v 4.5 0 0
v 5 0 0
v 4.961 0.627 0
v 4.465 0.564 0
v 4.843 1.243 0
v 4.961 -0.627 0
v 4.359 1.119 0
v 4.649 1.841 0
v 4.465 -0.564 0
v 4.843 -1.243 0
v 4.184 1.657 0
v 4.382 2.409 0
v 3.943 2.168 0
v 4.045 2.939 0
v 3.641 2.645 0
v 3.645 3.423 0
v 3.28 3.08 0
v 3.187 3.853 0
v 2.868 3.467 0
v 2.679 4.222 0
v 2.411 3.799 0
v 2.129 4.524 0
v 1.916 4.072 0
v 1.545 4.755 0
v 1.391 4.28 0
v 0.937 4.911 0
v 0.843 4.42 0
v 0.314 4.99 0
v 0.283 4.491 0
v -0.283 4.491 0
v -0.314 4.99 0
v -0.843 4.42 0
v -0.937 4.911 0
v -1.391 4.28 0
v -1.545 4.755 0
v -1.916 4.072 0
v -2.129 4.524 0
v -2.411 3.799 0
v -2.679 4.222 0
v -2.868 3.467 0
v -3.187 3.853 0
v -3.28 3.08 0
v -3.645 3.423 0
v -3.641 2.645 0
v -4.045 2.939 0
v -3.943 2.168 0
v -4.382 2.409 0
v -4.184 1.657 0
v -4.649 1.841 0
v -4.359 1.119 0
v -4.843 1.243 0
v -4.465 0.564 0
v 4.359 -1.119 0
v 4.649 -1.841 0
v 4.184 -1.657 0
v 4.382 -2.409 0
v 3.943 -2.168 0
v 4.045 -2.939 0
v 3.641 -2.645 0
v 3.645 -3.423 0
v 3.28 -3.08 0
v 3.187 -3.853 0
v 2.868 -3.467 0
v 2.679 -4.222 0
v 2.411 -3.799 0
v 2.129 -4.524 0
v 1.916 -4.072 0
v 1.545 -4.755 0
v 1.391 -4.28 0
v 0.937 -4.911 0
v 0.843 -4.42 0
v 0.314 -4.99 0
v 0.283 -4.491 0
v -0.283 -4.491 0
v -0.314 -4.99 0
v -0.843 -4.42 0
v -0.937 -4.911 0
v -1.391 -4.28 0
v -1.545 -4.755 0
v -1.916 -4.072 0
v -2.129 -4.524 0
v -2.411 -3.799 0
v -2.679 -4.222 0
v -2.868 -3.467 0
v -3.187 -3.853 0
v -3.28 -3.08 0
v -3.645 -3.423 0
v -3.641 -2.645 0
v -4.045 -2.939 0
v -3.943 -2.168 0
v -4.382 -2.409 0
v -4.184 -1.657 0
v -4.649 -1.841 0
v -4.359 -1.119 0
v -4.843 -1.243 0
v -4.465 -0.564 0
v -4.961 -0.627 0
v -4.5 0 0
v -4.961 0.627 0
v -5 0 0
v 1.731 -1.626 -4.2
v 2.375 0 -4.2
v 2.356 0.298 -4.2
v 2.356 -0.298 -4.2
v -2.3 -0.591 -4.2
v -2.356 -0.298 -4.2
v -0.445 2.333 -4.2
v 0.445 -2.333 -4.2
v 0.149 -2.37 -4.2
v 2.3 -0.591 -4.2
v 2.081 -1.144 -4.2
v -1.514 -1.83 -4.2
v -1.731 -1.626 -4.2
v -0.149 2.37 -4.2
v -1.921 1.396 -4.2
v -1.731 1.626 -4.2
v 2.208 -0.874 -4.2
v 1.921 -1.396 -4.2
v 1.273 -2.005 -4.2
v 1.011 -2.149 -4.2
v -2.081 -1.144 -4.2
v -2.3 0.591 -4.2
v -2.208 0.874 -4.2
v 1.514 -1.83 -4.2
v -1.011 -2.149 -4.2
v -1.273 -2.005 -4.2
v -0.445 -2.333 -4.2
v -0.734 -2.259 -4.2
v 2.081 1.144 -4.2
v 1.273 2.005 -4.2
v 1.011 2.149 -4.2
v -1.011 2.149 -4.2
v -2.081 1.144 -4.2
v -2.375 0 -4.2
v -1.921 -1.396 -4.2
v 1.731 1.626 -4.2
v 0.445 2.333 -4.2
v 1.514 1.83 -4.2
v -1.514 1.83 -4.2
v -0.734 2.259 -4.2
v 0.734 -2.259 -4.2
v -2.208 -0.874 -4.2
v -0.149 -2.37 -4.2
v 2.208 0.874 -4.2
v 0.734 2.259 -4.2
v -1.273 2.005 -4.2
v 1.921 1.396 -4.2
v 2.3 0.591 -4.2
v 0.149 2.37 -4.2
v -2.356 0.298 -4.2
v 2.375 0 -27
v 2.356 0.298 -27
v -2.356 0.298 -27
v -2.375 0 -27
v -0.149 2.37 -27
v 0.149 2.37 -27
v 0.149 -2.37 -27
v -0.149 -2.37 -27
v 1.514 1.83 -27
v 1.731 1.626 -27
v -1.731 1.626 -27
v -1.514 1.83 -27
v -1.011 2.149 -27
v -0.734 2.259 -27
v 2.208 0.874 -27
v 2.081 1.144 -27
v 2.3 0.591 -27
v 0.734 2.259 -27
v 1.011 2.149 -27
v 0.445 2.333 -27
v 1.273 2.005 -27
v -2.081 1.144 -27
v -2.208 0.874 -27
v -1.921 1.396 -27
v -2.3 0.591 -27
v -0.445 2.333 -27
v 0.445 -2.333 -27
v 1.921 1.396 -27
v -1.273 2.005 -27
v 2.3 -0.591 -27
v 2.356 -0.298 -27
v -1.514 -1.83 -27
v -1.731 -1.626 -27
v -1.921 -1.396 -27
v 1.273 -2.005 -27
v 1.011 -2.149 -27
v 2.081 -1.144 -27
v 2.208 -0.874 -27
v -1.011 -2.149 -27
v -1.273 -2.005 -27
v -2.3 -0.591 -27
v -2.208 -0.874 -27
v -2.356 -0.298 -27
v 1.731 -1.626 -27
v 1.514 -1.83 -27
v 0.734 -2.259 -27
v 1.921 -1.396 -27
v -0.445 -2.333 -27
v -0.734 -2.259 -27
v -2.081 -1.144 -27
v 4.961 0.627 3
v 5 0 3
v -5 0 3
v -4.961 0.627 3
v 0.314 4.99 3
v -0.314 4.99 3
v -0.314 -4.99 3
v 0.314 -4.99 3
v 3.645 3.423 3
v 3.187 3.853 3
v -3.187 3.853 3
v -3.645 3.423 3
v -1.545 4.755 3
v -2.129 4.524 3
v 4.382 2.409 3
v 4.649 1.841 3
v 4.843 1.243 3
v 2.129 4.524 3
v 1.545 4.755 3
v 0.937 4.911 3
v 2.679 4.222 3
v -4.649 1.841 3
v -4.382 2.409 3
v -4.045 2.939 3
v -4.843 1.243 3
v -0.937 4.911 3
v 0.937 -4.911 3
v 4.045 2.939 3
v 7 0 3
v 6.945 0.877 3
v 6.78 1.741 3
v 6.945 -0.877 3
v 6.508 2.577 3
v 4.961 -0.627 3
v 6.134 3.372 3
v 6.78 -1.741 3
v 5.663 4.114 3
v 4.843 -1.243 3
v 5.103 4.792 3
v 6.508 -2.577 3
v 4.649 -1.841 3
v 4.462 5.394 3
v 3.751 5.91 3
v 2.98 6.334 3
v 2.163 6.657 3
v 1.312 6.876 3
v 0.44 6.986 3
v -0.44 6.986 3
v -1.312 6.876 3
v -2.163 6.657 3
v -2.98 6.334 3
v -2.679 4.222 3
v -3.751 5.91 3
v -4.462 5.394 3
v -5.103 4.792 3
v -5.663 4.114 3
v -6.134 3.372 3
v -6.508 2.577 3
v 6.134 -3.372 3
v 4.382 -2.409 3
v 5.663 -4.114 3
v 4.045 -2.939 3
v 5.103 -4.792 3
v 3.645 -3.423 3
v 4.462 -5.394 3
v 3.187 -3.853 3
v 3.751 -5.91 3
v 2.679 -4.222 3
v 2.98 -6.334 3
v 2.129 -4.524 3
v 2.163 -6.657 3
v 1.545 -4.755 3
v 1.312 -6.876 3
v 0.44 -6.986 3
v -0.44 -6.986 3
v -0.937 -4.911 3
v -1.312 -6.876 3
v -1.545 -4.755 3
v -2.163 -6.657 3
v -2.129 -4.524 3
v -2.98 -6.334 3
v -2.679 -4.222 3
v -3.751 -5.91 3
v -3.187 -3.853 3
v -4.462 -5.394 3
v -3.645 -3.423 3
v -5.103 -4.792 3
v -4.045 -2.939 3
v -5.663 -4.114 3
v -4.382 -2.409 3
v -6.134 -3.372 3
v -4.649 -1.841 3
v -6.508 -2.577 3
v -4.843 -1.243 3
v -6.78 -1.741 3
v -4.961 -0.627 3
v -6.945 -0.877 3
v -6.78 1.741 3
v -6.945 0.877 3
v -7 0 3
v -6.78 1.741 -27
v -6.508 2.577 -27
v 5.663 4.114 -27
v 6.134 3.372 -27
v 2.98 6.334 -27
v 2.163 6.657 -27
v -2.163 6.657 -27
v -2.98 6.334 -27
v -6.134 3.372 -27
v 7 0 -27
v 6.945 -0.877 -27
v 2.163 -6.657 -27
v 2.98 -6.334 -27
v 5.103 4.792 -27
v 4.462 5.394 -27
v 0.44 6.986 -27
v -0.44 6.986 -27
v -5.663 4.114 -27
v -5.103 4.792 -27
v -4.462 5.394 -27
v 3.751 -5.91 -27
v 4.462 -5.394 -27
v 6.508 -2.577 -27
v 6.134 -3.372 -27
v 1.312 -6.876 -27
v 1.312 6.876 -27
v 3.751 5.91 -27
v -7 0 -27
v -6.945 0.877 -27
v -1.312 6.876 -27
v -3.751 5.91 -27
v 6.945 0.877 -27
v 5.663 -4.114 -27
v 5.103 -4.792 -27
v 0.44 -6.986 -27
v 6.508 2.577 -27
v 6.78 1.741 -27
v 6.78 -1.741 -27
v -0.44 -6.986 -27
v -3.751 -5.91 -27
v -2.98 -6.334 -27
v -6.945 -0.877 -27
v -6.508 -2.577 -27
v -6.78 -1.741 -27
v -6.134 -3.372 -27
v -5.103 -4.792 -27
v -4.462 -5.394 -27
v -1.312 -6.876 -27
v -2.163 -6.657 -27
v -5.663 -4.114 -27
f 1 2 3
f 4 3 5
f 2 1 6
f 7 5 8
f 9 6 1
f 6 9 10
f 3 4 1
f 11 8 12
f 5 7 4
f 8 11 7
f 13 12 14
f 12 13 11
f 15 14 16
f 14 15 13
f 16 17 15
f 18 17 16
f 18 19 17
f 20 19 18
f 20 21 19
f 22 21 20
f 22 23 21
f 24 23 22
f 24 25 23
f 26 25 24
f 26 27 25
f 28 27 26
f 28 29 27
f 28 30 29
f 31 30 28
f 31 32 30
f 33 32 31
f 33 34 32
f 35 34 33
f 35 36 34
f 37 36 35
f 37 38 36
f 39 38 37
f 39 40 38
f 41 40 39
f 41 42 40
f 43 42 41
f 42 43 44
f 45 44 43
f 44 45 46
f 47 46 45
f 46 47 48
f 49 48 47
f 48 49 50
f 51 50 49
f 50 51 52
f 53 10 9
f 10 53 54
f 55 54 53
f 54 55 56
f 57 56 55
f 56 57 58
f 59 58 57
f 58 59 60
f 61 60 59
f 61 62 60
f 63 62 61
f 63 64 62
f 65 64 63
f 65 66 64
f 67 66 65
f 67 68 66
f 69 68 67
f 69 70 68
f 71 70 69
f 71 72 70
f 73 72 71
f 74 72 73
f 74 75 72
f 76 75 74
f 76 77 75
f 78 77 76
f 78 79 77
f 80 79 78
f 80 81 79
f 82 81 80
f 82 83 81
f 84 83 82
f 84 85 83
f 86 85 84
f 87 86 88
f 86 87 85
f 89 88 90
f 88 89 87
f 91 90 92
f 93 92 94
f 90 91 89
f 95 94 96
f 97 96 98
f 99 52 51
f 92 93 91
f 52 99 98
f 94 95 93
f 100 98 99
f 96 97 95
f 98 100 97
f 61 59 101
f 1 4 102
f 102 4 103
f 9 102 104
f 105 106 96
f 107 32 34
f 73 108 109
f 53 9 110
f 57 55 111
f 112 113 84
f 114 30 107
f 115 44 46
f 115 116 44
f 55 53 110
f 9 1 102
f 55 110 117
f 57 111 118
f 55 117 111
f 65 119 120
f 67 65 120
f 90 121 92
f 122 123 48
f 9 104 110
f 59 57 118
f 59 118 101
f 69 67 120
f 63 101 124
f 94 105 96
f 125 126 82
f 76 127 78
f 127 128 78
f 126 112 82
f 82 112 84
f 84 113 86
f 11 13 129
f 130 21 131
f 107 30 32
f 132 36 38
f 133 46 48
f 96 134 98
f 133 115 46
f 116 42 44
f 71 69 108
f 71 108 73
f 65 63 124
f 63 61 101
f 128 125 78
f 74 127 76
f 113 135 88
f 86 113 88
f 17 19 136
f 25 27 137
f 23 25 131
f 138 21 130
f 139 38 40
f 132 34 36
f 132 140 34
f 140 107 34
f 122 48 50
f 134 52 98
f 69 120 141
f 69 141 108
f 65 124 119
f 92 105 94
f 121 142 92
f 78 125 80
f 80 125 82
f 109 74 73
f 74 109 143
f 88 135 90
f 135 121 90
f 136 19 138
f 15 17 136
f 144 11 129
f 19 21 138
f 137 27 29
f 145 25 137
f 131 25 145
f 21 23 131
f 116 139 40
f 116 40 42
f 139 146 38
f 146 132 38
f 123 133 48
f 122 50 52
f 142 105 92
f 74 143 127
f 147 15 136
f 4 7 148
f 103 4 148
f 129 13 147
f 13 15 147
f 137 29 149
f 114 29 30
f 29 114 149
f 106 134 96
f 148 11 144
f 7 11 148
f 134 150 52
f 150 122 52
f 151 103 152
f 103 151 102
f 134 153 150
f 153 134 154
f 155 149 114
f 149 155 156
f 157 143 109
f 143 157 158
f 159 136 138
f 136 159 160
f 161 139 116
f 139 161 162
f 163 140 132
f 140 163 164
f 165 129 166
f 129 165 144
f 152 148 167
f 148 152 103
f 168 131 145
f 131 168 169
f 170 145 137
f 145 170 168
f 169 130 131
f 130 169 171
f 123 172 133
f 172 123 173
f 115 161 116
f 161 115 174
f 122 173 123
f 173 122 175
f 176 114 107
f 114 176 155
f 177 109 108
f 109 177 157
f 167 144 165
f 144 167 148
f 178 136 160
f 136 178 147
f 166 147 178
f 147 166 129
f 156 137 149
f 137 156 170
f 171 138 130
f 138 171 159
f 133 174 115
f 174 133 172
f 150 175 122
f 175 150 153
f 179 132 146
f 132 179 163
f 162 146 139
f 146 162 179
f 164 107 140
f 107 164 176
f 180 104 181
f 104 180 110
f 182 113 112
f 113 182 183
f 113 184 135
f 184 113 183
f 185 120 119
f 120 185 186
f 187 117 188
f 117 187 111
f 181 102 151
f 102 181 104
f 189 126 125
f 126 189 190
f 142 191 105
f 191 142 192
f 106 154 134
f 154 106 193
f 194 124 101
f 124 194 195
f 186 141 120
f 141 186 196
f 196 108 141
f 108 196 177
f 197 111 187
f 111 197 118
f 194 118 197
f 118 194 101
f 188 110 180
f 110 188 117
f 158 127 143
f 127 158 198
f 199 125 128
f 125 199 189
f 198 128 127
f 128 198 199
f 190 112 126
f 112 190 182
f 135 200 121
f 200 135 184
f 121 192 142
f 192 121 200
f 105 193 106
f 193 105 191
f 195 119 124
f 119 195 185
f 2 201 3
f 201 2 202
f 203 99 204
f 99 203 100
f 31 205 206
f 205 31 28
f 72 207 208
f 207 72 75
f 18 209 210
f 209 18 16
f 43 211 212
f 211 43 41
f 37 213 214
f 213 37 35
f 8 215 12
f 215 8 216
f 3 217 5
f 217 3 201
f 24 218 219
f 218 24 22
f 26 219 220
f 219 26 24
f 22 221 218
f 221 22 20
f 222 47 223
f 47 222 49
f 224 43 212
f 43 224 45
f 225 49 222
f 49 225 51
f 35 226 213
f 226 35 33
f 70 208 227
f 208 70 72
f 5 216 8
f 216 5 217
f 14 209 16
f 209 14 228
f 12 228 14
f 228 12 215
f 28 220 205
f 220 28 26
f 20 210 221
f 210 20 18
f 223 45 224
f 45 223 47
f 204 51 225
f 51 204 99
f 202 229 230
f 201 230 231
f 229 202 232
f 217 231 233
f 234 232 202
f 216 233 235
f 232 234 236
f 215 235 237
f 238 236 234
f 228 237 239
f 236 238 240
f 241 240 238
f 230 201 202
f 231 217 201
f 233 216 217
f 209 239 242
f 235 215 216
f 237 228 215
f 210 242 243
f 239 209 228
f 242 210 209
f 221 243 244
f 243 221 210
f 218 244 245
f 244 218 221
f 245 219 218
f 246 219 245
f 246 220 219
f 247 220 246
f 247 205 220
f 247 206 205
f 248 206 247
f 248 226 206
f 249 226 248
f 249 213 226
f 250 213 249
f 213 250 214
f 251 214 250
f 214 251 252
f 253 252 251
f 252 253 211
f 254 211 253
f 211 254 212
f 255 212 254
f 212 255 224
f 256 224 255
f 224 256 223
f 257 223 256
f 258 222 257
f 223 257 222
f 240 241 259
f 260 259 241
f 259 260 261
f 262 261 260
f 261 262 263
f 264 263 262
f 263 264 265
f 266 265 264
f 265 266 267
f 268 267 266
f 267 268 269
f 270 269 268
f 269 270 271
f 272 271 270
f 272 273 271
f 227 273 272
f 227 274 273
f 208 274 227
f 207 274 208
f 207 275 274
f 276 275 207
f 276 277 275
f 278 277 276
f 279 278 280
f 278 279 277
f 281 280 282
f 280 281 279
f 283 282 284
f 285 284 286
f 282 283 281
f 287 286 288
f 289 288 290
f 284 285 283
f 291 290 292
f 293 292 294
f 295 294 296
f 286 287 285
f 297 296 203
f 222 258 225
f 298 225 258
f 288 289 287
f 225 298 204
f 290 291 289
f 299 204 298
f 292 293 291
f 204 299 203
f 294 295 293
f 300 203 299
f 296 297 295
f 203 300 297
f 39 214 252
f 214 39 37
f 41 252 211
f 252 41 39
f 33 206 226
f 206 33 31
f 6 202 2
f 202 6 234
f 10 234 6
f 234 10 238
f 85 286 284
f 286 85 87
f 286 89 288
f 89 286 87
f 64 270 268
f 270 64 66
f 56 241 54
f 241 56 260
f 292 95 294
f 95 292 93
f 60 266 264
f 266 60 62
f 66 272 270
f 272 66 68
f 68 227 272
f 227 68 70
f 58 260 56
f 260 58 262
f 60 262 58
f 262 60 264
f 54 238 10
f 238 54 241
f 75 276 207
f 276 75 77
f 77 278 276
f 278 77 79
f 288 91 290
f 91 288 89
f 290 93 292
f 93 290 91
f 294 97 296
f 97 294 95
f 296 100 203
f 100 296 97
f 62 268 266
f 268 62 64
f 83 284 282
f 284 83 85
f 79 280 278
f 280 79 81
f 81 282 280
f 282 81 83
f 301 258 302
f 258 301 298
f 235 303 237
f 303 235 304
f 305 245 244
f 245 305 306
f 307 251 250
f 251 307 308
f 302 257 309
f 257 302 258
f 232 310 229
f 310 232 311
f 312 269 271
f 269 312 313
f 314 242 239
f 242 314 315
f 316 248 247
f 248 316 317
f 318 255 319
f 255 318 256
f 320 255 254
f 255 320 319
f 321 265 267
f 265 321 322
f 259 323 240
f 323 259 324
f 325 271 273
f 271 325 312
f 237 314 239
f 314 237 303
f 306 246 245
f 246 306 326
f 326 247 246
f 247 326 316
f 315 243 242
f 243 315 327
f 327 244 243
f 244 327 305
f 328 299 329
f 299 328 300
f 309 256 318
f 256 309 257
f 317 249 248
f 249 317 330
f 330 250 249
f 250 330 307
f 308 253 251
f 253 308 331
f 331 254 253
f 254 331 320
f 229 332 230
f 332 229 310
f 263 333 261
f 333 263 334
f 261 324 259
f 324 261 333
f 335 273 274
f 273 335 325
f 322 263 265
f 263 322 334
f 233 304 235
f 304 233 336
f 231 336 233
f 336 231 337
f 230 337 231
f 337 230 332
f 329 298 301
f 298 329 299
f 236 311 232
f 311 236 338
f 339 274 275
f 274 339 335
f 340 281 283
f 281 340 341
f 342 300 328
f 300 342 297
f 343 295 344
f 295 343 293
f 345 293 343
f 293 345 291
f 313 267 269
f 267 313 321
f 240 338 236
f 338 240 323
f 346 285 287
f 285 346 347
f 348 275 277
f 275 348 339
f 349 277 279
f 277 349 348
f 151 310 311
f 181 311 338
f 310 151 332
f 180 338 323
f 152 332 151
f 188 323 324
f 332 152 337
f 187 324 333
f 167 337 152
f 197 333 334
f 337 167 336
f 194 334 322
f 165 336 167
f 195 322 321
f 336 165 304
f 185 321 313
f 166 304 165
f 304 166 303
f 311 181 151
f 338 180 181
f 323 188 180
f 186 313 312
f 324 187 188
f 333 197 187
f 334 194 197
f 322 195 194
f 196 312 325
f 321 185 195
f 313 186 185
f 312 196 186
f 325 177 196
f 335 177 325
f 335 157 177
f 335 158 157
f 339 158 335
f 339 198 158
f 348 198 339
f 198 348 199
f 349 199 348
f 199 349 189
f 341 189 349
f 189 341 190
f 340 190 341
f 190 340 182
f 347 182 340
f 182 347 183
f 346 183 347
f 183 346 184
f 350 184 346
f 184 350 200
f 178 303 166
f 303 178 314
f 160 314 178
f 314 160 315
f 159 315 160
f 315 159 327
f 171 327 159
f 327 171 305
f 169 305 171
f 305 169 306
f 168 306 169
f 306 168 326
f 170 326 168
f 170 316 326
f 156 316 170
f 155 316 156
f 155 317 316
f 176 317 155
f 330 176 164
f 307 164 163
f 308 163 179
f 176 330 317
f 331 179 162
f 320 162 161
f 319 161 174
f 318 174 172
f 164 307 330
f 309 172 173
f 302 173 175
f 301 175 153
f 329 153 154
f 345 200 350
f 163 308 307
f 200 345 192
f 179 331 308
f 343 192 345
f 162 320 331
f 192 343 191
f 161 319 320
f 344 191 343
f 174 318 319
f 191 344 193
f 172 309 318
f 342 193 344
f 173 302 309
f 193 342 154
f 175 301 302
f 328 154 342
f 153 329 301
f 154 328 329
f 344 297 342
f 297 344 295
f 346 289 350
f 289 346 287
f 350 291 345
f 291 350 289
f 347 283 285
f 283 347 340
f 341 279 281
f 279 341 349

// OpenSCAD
$fn = 50;

difference() {
	union() {
		translate(v = [0, 0, -27.0]) {
			cylinder(h = 30, r = 7.0);
		}
	}
	union() {
		translate(v = [0, 0, 0]) {
			rotate(a = [0, 0, 0]) {
				difference() {
					union() {
						translate(v = [0, 0, -30.0]) {
							cylinder(h = 30, r = 2.25);
						}
						translate(v = [0, 0, -4.2]) {
							cylinder(h = 4.2, r1 = 2.375, r2 = 4.5);
						}
						translate(v = [0, 0, -30.0]) {
							cylinder(h = 30, r = 2.375);
						}
						translate(v = [0, 0, -30.0]) {
							cylinder(h = 30, r = 2.25);
						}
					}
					union();
				}
			}
		}
		#cylinder(h = 3, r = 5.0);
	}
}
